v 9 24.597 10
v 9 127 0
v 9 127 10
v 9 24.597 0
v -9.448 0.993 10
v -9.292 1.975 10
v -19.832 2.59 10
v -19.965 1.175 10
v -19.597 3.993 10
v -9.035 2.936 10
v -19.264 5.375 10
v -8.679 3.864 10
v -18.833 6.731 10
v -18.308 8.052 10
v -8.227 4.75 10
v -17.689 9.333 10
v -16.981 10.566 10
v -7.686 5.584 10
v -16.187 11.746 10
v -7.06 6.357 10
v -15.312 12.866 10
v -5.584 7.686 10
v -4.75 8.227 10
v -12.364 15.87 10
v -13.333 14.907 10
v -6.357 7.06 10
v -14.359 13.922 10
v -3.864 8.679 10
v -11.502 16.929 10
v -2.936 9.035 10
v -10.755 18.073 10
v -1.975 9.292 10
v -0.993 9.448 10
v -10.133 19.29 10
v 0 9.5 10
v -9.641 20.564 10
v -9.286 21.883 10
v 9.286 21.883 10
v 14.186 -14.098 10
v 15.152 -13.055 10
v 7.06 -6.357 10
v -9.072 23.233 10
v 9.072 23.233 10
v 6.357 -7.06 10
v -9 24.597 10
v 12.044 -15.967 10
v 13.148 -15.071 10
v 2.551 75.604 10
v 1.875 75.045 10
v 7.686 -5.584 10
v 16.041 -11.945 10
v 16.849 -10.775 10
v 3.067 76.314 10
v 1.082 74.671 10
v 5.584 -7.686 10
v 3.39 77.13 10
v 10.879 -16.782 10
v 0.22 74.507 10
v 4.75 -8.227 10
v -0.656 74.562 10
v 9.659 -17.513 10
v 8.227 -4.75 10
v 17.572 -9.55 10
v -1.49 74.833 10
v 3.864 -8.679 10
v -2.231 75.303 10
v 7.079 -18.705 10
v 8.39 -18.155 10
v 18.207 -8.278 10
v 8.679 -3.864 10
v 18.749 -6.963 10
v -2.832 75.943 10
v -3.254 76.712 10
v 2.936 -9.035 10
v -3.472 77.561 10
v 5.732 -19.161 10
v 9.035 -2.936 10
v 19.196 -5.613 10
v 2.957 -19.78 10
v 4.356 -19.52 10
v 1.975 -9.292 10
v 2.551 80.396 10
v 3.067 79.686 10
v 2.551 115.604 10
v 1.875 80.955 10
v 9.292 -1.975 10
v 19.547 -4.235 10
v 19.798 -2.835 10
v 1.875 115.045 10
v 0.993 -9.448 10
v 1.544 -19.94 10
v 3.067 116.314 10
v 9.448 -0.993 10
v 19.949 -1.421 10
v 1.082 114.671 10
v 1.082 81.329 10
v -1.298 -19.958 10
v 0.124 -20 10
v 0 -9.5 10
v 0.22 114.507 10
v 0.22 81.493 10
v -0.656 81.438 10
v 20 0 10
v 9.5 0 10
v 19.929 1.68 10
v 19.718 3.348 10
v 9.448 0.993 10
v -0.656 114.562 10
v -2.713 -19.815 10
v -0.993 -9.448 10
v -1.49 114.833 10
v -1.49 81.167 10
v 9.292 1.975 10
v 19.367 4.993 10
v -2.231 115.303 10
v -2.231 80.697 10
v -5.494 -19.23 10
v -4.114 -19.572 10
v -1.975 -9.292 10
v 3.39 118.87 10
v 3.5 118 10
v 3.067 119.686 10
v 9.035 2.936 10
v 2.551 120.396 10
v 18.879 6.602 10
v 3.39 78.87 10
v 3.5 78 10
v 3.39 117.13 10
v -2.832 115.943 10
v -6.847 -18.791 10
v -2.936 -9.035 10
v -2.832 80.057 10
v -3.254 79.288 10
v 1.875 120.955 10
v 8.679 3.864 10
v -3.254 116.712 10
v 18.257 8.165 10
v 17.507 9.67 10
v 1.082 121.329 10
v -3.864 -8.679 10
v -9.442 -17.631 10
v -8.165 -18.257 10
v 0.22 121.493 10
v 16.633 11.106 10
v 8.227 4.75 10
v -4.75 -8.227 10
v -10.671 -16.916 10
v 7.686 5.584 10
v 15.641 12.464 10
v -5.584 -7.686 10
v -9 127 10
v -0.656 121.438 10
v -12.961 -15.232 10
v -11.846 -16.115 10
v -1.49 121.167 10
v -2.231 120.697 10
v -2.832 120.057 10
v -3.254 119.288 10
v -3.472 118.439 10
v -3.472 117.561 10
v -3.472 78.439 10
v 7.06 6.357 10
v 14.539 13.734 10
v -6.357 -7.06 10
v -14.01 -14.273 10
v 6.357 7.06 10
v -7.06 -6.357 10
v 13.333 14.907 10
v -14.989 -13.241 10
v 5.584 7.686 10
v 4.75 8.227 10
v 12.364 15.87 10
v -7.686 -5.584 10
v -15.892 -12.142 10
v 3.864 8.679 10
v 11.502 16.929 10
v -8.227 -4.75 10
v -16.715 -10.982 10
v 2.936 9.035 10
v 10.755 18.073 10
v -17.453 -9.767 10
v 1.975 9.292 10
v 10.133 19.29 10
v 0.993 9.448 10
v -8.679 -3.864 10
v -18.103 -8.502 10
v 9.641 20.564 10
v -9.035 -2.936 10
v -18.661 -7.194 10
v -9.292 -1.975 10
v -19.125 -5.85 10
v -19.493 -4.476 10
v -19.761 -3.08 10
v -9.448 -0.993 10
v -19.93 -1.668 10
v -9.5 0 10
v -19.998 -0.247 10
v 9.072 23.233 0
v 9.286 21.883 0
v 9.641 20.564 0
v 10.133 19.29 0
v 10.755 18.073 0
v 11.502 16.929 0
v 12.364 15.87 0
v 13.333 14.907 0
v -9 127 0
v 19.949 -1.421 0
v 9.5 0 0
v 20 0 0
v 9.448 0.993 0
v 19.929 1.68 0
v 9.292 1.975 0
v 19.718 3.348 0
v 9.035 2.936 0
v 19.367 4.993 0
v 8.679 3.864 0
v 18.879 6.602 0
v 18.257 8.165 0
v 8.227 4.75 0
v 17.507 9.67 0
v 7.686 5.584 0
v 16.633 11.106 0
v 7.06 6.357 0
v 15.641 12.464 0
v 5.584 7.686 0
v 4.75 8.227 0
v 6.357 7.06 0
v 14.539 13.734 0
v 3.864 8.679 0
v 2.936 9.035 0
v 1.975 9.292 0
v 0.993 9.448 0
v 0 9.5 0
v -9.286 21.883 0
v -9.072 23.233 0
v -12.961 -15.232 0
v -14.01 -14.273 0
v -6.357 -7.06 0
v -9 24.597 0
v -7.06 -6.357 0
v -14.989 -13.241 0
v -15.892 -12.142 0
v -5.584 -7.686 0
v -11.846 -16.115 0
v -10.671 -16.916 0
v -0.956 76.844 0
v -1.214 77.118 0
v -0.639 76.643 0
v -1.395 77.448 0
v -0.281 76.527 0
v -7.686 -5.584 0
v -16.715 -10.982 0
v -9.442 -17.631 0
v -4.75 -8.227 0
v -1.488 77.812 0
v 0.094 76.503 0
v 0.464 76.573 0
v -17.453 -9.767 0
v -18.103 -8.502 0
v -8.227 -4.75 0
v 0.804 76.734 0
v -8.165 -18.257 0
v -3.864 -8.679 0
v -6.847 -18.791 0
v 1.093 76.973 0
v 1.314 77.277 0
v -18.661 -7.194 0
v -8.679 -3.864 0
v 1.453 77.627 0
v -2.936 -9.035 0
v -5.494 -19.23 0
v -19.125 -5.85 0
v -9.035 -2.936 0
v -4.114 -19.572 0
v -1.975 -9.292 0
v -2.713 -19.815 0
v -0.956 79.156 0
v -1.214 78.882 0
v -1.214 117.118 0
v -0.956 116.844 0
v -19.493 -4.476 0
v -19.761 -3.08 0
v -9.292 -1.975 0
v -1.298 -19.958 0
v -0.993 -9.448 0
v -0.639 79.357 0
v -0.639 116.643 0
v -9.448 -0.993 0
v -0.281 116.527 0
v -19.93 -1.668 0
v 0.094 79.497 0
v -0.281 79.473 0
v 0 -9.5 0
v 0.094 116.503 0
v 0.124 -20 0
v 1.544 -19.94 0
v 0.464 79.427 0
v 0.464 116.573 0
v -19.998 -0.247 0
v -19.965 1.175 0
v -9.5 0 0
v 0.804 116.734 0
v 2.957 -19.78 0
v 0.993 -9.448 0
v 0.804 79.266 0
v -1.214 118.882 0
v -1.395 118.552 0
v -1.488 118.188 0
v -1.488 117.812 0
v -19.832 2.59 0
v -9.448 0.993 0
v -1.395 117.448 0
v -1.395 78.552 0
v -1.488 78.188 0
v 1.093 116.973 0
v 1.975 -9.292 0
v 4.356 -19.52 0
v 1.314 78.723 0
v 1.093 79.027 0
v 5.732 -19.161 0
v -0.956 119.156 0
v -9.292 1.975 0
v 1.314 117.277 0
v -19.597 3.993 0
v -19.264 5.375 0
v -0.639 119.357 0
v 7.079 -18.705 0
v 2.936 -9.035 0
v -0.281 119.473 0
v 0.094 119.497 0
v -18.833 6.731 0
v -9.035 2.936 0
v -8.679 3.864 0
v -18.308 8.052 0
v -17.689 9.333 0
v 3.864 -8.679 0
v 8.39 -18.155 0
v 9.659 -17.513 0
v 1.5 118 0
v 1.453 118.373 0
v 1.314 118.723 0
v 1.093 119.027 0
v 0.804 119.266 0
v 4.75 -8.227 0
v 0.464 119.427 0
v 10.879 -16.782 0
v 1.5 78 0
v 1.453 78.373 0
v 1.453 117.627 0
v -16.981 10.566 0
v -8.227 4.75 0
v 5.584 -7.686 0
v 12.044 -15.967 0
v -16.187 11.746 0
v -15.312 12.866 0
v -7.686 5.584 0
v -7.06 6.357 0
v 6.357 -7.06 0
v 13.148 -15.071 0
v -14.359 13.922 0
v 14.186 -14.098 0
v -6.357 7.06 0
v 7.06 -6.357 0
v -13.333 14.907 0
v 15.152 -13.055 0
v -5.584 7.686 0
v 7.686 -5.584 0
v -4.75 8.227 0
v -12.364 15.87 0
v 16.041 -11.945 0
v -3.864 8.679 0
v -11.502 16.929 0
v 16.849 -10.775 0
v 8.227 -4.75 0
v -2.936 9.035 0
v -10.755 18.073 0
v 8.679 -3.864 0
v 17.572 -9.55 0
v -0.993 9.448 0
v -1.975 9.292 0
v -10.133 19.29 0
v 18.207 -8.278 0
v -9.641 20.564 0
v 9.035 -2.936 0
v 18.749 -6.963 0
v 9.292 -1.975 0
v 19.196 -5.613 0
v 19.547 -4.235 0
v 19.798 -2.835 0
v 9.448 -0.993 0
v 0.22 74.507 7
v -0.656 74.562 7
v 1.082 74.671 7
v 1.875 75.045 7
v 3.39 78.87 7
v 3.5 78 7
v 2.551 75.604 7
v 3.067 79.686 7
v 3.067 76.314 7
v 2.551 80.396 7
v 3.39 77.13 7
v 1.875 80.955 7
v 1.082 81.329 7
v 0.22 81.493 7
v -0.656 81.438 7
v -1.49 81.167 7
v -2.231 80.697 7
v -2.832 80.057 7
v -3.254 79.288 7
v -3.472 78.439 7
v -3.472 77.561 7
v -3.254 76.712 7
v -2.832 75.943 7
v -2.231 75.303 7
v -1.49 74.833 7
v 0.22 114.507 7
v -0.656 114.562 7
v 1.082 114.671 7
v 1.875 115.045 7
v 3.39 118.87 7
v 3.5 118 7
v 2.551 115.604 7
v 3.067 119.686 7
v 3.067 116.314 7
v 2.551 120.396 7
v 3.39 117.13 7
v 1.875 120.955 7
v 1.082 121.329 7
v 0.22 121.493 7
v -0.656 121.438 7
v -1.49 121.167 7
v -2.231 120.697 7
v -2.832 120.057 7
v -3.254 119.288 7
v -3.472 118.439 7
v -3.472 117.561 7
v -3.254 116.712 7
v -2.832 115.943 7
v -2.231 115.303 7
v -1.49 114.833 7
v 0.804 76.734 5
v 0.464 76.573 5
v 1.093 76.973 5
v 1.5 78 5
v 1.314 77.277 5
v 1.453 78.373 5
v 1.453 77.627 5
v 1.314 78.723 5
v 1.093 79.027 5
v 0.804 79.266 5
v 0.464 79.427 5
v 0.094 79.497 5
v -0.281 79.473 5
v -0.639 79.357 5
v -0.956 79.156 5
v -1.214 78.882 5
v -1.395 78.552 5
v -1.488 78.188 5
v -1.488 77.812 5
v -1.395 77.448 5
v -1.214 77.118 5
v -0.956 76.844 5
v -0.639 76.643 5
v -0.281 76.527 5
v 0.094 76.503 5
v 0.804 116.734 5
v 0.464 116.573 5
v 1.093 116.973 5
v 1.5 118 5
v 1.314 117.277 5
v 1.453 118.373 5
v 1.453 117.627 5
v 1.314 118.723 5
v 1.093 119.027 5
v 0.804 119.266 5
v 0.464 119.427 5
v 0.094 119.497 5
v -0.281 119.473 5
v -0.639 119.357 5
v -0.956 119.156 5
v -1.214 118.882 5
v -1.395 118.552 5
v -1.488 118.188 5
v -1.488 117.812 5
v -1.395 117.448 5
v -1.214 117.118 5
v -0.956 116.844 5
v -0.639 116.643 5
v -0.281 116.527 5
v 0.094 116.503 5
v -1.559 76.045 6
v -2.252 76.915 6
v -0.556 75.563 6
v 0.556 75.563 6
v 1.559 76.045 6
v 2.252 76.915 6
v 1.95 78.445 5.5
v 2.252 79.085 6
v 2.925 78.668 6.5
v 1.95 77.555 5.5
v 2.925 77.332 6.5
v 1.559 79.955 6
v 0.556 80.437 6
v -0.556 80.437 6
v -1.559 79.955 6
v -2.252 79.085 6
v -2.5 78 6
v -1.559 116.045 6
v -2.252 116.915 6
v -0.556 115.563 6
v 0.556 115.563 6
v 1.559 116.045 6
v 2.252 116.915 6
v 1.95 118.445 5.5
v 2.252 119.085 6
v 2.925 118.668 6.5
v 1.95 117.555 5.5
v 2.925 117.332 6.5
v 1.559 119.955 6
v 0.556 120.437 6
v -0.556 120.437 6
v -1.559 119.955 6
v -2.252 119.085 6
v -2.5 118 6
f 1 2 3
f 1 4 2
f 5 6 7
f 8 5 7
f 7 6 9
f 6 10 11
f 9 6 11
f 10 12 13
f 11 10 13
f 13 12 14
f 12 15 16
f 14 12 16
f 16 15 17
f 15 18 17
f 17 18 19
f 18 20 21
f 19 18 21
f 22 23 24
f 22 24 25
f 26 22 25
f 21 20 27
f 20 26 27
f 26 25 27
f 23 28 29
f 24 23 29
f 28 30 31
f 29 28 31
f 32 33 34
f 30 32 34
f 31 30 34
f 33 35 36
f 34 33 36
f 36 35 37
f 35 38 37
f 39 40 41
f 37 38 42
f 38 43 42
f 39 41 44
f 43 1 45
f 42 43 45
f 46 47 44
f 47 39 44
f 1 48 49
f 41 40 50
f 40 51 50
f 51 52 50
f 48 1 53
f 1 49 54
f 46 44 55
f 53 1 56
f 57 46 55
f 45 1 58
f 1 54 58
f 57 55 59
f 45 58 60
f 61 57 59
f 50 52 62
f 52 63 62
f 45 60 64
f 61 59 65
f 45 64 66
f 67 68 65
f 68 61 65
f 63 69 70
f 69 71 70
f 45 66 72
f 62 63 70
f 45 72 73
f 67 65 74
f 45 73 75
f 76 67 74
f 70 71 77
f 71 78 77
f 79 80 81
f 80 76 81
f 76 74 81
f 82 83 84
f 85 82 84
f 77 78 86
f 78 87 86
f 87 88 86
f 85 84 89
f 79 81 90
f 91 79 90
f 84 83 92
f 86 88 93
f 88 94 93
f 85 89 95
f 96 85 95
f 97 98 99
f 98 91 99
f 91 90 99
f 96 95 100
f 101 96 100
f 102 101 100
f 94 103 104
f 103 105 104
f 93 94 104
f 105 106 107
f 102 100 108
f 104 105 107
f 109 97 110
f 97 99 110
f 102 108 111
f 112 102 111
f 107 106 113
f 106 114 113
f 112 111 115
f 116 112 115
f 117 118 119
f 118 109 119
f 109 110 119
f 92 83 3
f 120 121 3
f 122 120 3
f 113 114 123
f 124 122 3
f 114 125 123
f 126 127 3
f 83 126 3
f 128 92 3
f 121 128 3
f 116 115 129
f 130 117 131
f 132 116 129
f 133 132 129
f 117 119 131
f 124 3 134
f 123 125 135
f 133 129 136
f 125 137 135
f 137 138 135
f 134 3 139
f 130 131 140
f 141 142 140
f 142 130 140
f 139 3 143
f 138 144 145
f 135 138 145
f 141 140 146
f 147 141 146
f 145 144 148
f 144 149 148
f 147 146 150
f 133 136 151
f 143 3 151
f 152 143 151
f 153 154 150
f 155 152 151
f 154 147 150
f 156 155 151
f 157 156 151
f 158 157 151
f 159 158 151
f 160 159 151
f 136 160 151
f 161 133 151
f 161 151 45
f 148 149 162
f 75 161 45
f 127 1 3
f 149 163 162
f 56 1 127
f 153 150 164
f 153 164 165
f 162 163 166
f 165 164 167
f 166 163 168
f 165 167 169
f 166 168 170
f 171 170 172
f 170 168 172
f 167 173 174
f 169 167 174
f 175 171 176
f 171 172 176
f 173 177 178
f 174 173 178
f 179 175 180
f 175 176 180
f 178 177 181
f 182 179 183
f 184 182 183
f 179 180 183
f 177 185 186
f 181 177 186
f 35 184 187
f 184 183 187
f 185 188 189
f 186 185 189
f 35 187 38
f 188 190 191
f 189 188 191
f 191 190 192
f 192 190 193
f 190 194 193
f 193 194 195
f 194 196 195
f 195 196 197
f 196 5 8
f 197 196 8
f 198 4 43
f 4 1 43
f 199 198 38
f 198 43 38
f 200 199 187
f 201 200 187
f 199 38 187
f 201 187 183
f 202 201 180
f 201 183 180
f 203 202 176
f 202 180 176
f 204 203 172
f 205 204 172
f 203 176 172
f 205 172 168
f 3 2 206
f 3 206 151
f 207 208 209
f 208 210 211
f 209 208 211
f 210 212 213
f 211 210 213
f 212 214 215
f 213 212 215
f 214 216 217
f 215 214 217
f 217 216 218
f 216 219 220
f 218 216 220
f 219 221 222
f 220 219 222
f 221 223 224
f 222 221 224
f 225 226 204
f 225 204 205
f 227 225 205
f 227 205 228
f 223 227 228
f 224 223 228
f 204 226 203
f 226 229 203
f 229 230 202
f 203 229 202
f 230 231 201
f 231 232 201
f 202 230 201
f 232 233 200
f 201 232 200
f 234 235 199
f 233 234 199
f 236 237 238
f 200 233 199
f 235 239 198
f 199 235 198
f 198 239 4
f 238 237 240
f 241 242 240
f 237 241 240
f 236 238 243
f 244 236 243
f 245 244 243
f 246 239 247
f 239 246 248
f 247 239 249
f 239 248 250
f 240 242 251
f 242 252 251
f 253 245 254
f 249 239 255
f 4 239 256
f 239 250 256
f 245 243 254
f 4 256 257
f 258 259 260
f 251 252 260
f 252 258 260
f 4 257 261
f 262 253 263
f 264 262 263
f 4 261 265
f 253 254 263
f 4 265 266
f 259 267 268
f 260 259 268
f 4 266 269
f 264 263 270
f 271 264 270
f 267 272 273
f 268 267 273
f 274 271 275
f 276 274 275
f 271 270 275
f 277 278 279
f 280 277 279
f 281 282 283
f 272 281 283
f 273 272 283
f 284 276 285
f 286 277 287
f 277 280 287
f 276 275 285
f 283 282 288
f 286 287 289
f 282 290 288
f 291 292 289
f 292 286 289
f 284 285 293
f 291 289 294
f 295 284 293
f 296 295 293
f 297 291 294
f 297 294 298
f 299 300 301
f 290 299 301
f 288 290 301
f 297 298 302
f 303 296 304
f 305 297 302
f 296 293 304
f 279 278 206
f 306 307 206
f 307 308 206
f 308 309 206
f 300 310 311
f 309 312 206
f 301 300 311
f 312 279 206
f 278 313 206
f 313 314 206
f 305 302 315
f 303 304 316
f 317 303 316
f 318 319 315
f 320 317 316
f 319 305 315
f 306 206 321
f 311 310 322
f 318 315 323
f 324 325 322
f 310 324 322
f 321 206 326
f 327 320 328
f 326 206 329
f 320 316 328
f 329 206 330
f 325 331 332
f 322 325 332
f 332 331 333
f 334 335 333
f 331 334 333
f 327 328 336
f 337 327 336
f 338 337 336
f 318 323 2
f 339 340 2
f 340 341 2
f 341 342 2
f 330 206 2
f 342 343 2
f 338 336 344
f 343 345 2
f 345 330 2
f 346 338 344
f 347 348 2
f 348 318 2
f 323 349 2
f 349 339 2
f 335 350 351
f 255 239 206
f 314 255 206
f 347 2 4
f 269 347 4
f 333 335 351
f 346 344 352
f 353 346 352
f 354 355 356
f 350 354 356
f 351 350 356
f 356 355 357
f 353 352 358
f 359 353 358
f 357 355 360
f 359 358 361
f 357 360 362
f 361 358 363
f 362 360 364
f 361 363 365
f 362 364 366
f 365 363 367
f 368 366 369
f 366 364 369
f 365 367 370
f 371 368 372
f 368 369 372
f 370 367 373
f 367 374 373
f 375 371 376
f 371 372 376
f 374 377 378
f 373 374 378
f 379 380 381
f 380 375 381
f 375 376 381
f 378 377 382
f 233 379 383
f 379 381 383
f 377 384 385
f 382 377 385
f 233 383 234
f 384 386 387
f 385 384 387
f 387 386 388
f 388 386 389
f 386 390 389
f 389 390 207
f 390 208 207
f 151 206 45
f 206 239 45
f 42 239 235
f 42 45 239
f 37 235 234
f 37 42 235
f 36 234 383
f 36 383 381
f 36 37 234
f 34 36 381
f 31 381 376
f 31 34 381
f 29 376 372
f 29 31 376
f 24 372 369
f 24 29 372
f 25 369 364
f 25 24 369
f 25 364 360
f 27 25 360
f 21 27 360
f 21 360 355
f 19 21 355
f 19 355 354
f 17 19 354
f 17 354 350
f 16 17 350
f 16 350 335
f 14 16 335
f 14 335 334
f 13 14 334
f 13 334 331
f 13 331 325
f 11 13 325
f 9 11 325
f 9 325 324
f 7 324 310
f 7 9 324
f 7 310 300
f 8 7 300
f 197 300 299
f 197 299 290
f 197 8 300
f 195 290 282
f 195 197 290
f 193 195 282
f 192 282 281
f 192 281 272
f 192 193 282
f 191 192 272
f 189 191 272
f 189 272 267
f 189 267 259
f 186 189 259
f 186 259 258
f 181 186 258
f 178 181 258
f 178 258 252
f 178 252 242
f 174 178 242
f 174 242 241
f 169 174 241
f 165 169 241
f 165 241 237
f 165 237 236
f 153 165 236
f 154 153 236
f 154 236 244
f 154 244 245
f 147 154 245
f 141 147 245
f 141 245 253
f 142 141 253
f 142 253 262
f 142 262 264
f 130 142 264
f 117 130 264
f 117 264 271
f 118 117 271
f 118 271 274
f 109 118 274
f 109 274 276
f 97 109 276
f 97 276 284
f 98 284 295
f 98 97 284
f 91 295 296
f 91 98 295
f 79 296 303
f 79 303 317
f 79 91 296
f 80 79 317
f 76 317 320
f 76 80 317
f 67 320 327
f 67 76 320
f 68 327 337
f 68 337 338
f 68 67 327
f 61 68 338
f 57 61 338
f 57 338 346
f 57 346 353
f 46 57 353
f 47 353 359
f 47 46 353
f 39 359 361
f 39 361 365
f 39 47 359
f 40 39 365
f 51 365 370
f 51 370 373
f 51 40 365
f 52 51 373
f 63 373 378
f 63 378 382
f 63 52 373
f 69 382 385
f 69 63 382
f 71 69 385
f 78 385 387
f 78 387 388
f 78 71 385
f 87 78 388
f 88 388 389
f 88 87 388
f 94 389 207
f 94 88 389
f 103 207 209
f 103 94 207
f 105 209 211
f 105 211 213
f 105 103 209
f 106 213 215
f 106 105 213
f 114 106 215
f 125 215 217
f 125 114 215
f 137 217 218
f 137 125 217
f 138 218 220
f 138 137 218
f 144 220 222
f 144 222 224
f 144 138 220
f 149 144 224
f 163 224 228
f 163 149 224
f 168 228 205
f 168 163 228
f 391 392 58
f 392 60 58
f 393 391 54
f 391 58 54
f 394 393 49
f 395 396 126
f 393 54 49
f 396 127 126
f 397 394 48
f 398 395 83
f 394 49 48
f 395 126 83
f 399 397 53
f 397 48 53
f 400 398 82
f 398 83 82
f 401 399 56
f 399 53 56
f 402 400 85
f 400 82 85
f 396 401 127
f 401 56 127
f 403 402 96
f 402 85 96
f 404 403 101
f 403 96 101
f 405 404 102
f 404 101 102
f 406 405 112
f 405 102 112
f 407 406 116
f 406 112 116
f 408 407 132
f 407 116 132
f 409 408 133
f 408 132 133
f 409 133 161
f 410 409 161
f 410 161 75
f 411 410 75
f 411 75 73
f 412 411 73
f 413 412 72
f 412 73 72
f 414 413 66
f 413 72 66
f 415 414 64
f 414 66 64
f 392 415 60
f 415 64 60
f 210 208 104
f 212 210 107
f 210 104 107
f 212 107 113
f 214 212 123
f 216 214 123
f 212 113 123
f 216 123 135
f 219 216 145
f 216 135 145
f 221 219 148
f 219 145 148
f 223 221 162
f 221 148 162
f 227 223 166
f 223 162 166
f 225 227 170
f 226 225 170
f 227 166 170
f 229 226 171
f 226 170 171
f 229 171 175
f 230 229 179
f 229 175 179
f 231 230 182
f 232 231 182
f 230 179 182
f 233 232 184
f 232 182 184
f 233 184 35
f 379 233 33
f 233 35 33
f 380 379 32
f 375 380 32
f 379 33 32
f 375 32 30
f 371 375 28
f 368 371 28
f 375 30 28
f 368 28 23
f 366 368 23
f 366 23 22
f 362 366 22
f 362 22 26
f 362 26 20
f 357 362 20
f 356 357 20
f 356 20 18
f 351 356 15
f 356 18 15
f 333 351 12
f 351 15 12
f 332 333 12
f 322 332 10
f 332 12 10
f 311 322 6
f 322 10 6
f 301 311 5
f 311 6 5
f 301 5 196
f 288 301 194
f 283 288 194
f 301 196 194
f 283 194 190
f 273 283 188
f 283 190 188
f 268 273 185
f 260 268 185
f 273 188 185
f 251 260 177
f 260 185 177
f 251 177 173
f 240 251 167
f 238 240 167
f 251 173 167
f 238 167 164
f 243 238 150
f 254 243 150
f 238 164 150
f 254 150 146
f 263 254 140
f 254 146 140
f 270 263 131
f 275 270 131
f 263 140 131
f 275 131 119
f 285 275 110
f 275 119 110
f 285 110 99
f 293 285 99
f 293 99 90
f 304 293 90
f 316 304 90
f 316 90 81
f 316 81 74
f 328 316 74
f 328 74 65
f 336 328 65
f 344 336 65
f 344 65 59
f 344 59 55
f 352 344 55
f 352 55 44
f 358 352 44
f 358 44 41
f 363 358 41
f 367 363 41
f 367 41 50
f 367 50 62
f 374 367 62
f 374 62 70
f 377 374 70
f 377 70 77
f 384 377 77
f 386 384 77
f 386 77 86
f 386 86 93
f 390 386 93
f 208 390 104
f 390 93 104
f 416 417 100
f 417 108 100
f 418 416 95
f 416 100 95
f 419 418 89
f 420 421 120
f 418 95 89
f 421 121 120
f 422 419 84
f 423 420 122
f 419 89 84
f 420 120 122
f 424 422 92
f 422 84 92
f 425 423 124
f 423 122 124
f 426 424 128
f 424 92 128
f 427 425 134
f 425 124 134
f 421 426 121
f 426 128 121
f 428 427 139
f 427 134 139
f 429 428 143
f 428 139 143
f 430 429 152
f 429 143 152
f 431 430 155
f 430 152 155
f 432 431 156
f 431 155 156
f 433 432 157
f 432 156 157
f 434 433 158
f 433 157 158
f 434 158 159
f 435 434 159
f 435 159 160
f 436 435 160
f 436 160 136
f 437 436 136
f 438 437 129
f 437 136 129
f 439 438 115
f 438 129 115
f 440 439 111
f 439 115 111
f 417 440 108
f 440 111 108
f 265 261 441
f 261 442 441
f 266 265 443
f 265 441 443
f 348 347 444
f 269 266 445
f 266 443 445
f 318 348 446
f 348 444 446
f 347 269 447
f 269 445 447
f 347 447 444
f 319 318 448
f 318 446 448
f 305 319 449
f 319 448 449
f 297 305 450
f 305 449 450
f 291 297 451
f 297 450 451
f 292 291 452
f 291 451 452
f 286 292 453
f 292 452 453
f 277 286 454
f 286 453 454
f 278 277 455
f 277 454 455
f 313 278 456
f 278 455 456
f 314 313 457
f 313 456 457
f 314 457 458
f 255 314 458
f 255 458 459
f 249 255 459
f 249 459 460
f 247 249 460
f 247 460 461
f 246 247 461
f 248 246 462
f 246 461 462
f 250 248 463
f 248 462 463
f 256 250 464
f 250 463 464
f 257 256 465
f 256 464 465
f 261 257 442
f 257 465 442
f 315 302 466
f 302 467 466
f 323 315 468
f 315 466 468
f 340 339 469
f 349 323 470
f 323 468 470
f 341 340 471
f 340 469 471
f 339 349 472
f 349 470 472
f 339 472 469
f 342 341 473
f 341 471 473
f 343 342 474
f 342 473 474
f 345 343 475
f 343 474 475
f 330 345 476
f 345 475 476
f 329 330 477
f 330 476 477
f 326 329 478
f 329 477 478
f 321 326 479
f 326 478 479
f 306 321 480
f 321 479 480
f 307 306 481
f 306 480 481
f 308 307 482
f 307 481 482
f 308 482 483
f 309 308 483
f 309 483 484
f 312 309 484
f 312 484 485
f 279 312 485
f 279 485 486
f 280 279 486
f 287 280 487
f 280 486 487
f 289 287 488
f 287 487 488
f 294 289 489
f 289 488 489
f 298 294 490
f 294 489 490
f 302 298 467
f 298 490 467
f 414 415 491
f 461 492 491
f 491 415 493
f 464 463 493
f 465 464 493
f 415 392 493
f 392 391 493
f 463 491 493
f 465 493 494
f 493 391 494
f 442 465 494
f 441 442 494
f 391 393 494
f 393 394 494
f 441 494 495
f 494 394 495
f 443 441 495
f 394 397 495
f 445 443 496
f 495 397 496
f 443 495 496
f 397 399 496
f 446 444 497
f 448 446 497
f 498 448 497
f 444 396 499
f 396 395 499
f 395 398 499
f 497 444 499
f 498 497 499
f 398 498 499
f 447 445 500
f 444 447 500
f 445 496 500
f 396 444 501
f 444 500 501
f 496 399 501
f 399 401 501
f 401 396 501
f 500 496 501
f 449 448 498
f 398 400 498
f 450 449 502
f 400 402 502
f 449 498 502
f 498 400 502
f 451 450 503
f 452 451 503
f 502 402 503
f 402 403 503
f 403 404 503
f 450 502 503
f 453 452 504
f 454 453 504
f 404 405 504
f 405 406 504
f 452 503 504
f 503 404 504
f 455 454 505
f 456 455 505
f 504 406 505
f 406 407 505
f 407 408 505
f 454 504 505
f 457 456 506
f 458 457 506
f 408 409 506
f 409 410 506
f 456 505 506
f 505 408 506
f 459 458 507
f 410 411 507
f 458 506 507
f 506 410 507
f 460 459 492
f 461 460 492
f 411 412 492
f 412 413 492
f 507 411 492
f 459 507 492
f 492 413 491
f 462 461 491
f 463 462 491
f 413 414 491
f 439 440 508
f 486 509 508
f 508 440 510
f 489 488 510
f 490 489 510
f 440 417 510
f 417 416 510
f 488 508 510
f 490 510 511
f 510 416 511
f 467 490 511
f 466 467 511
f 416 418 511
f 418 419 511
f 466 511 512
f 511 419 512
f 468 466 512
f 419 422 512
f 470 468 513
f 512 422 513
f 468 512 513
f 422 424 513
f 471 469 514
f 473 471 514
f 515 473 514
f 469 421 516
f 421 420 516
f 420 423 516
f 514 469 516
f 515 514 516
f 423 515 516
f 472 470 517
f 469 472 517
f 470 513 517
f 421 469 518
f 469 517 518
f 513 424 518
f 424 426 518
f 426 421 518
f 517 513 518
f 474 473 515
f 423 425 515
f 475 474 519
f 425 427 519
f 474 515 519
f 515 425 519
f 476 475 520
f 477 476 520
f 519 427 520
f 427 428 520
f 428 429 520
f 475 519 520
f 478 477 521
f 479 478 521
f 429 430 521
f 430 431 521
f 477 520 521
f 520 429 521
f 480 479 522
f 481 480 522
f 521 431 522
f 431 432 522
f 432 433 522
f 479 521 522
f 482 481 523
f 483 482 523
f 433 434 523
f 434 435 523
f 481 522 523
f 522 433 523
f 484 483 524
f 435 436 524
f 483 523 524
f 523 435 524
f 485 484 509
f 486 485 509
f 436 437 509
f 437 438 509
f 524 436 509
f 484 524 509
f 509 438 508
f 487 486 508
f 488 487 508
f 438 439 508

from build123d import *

# Parameters (mm, degrees)
CYLINDER003_R     = 3.5
CYLINDER003_DEPTH = 10
CYLINDER002_R     = 1.5
CYLINDER002_DEPTH = 10
CYLINDER_R        = 9.5
CYLINDER_DEPTH    = 10
CYLINDER001_R     = 20
CYLINDER001_DEPTH = 10
BOX_W             = 18
BOX_H             = 110
BOX_DEPTH         = 10
FILLET_R          = 13


with BuildPart() as cylinder003:
    # Cylinder003 → Cylinder003 (new body)
    with BuildSketch(Plane(origin=(15, -5, 8), x_dir=(1, 0, 0), z_dir=(0, 0, 1))):
        Circle(CYLINDER003_R)
    extrude(amount=CYLINDER003_DEPTH)


with BuildPart() as cone:
    # Cone → Cone (revolve)
    with BuildSketch(Plane(origin=(15, -5, 6), x_dir=(1, 0, 0), z_dir=(0, -1, 0))):
        Polygon((0, 0), (1.5, 0), (3.5, 2), (0, 2), align=None)
    revolve(axis=Axis((15, -5, 6), (0, 0, 1)))


with BuildPart() as cylinder002:
    # Cylinder002 → Cylinder002 (new body)
    with BuildSketch(Plane(origin=(15, -5, 0), x_dir=(1, 0, 0), z_dir=(0, 0, 1))):
        Circle(CYLINDER002_R)
    extrude(amount=CYLINDER002_DEPTH)


with BuildPart() as fusion001:
    # Fusion001 base: copy of Cylinder002
    add(cylinder002.part)

    # Fusion001: union Cylinder003, Cone
    add(cylinder003.part)
    add(cone.part)


with BuildPart() as fusion001_1:
    # Fusion001 placement: moved
    add(fusion001.part.moved(Location((-15, 123, -1))))


with BuildPart() as fusion002:
    # Fusion002 base: copy of Cylinder002
    add(cylinder002.part)

    # Fusion002: union Cylinder003, Cone
    add(cylinder003.part)
    add(cone.part)


with BuildPart() as fusion002_1:
    # Fusion002 placement: moved
    add(fusion002.part.moved(Location((-15, 83, -1))))


with BuildPart() as fusion003:
    # Cylinder → Cylinder (new body)
    with BuildSketch(Plane.XY):
        Circle(CYLINDER_R)
    extrude(amount=CYLINDER_DEPTH)

    # Fusion003: union Fusion001, Fusion002
    add(fusion001_1.part)
    add(fusion002_1.part)


with BuildPart() as cylinder001:
    # Cylinder001 → Cylinder001 (new body)
    with BuildSketch(Plane.XY):
        Circle(CYLINDER001_R)
    extrude(amount=CYLINDER001_DEPTH)


with BuildPart() as cut:
    # Box → Box (new body)
    with BuildSketch(Plane(origin=(-9, 17, 0), x_dir=(1, 0, 0), z_dir=(0, 0, 1))):
        with Locations((9, 55)):
            Rectangle(BOX_W, BOX_H)
    extrude(amount=BOX_DEPTH)

    # Fusion: union Cylinder001
    add(cylinder001.part)

    # Fillet
    fillet_edges = [cut.edges().sort_by_distance(p)[0] for p in [
        (9, 17.860571, 5),
        (-9, 17.860571, 5),
    ]]
    fillet(fillet_edges, radius=FILLET_R)

    # Cut: cut Fusion003
    add(fusion003.part, mode=Mode.SUBTRACT)


solid = cut.part
